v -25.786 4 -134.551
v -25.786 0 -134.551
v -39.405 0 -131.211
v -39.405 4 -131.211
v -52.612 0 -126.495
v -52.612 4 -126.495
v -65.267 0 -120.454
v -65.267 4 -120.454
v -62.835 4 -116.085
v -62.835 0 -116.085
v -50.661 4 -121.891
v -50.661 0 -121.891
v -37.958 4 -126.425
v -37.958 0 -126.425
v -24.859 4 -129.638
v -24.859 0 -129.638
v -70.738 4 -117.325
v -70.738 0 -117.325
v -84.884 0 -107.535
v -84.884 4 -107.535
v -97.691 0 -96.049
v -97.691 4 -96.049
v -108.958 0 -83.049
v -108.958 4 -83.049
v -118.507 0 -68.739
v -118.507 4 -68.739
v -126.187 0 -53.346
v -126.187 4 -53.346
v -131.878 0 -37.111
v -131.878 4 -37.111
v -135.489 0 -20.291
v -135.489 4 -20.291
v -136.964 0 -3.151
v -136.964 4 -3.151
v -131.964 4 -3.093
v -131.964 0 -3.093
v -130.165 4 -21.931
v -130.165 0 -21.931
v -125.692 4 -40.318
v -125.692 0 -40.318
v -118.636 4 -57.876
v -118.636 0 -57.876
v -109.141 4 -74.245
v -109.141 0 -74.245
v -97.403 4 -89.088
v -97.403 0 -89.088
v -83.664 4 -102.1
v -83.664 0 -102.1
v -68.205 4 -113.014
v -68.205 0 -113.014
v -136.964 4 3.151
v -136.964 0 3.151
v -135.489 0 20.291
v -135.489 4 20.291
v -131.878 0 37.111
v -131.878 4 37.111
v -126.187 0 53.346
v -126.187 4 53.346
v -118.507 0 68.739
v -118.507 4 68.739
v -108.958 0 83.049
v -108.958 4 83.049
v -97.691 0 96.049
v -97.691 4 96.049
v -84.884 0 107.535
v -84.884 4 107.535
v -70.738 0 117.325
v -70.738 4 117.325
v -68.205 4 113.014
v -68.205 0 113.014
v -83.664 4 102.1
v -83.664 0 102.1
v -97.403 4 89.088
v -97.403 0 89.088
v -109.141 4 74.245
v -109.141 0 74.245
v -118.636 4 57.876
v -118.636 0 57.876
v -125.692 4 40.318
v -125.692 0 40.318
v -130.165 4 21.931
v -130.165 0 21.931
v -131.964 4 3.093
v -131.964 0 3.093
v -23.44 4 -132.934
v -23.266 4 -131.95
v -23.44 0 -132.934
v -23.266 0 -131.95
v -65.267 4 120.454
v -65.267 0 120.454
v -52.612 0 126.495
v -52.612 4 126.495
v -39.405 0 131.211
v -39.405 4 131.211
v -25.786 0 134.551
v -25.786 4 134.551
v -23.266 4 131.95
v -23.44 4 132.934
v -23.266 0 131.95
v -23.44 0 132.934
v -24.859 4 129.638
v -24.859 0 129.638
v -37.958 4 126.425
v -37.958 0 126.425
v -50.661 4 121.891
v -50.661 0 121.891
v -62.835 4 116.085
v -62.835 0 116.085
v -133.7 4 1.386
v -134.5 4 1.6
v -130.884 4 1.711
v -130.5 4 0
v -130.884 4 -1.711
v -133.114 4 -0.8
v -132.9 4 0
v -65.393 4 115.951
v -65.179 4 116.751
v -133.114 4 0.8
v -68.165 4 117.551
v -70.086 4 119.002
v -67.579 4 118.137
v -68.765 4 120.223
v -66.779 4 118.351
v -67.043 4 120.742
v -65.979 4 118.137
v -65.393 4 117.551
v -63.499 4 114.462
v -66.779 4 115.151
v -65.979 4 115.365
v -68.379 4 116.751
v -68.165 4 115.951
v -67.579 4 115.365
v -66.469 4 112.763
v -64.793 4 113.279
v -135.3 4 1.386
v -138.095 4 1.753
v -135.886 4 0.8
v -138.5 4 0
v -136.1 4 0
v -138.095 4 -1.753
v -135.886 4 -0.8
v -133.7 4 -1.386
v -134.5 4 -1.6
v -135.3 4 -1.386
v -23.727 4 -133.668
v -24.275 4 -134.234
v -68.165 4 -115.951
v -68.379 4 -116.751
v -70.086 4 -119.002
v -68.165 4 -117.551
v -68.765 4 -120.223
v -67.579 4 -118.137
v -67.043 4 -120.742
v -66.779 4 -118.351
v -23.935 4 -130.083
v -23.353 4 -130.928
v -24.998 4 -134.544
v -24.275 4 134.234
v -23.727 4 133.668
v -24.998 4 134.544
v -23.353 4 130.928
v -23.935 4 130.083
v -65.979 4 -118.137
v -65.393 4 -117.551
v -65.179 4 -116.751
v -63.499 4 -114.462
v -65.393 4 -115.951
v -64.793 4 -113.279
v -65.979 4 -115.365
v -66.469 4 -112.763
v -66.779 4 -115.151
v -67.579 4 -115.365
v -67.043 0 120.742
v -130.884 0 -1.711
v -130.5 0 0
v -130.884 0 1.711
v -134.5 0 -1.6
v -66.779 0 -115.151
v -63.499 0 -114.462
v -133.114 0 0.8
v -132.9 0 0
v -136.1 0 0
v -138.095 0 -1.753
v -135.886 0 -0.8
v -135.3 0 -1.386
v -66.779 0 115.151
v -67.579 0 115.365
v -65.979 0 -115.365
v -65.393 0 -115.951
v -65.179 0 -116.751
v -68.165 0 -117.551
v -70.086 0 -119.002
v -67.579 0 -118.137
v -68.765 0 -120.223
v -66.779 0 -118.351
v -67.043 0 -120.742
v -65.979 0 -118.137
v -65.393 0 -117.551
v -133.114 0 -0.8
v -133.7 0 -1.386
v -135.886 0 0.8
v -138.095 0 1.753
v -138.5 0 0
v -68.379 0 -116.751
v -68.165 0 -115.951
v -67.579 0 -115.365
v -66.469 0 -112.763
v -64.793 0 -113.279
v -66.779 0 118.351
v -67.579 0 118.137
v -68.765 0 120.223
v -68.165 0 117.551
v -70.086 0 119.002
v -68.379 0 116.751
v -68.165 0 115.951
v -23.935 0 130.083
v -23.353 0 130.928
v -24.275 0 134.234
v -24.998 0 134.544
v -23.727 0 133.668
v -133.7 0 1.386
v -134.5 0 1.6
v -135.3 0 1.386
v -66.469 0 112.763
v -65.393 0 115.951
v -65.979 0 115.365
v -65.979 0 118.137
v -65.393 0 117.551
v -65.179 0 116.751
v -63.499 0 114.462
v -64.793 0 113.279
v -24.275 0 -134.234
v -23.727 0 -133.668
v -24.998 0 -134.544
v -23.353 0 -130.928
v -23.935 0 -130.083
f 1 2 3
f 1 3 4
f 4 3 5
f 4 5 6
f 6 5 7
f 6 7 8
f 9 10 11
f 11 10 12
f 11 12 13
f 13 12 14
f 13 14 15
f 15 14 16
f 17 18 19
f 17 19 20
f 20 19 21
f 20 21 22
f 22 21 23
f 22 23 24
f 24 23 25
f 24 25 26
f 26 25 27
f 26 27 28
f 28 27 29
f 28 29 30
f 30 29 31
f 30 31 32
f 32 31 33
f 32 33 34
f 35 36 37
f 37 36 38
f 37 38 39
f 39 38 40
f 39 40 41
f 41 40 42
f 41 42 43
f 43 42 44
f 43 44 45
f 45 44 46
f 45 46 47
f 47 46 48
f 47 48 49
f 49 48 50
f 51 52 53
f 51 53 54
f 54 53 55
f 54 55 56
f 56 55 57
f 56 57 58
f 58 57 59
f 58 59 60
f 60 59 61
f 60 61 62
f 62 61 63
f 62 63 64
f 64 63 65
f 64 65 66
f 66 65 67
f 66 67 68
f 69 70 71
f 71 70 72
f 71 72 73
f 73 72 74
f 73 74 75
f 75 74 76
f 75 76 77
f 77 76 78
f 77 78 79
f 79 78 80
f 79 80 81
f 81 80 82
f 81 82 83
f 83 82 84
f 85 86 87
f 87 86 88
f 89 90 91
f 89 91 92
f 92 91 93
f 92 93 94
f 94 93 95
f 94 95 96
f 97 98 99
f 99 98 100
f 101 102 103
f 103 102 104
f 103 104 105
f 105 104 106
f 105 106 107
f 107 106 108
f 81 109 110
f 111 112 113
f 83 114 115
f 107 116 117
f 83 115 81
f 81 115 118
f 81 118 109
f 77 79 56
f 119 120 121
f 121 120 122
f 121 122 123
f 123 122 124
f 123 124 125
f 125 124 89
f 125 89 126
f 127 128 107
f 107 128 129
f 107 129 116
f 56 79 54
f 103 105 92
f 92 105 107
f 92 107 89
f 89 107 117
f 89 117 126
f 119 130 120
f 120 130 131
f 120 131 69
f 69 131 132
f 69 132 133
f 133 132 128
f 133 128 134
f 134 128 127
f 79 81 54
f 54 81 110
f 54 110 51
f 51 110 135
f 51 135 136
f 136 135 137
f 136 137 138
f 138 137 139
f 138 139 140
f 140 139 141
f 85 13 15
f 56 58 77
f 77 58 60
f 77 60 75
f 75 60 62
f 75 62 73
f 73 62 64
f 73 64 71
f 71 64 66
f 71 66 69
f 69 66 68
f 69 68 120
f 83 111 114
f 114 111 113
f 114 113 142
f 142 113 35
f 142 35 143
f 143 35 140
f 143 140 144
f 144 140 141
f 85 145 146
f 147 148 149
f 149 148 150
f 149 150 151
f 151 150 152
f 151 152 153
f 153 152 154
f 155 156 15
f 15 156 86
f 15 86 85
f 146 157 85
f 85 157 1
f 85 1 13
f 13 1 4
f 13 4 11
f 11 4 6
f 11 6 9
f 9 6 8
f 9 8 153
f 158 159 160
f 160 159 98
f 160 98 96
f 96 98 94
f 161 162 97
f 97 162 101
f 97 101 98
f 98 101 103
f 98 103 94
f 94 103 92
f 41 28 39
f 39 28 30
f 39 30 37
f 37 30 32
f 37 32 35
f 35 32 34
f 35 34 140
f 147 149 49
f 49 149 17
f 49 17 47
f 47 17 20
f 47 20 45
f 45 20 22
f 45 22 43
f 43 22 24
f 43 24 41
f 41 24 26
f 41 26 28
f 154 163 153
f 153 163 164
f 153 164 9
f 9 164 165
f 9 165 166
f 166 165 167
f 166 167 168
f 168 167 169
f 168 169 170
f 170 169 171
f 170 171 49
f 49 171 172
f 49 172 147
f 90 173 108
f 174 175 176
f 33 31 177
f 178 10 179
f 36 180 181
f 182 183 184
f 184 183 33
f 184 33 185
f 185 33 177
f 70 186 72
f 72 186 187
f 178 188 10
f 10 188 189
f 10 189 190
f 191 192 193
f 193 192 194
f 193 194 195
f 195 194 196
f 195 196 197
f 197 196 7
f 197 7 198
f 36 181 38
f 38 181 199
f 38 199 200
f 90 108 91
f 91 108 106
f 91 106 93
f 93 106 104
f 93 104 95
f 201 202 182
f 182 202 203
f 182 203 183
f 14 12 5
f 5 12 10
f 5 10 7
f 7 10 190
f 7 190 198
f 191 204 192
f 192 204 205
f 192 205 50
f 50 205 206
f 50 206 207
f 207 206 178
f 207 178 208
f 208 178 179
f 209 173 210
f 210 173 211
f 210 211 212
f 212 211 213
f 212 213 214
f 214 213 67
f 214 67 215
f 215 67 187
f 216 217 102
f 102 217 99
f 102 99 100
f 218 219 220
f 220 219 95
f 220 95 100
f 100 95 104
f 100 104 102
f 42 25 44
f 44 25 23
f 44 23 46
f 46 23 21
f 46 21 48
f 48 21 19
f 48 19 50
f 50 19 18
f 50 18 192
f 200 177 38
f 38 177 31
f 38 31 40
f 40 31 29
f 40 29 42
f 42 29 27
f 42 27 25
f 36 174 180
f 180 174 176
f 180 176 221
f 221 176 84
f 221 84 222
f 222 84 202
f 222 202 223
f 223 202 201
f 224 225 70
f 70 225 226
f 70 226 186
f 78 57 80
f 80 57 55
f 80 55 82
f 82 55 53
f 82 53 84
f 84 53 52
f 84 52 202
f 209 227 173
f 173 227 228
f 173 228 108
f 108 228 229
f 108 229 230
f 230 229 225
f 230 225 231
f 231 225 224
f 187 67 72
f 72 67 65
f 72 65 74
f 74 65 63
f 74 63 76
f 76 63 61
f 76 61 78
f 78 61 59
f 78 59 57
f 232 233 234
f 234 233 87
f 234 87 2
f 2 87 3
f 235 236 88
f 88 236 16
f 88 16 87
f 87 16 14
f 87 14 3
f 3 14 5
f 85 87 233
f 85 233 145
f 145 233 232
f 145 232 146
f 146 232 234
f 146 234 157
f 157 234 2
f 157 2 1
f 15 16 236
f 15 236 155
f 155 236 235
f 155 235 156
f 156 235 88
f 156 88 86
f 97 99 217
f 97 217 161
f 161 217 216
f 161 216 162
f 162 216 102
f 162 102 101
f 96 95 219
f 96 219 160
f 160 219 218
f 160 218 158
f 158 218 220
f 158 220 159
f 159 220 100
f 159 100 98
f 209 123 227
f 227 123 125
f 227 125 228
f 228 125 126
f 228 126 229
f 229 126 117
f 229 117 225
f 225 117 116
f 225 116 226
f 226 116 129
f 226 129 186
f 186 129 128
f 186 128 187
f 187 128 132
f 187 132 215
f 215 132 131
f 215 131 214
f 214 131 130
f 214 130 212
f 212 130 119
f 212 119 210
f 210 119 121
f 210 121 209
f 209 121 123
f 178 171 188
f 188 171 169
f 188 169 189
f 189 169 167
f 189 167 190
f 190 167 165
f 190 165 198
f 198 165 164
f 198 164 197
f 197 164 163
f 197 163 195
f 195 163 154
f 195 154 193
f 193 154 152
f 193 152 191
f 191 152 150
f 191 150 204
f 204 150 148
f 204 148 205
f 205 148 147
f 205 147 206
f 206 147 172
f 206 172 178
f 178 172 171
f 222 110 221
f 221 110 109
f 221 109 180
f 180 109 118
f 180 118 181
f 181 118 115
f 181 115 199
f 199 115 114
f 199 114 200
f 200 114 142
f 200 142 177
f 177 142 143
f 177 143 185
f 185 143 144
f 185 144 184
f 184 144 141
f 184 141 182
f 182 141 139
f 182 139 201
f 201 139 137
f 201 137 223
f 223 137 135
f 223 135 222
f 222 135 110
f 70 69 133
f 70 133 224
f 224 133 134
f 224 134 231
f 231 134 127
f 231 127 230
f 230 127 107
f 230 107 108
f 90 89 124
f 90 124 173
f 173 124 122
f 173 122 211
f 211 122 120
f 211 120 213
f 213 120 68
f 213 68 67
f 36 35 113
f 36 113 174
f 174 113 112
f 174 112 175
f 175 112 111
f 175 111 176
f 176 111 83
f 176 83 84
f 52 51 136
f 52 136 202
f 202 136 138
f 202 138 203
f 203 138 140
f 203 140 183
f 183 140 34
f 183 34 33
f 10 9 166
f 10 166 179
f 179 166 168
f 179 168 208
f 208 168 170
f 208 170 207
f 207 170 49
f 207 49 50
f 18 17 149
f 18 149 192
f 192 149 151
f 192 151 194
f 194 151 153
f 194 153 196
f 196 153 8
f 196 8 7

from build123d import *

# Parameters (mm, degrees)
BOSS_EXTRUDE1_DEPTH = 4
FILLET2_R           = 2
CUT_EXTRUDE1_REACH  = 194.09
SKETCH2_R           = 1.6
SKETCH3_R           = 4
SKETCH3_R_2         = 1.6
BOSS_EXTRUDE2_DEPTH = 4


with BuildPart() as part:
    # Sketch1 → Boss-Extrude1 (new body)
    with BuildSketch(Plane(origin=(0, 0, 0), x_dir=(1, 0, 0), z_dir=(0, 1, 0))):
        with BuildLine():
            Line((-22.921559452, -129.994623398), (-23.78980034, -134.918662163))
            ThreePointArc((-23.78980034, -134.918662163), (-137, 0), (-23.78980034, 134.918662163))
            Line((-23.78980034, 134.918662163), (-22.921559452, 129.994623398))
            ThreePointArc((-22.921559452, 129.994623398), (-132, 0), (-22.921559452, -129.994623398))
        make_face()
    extrude(amount=BOSS_EXTRUDE1_DEPTH)

    # Fillet2
    fillet2_edges = [part.edges().sort_by_distance(p)[0] for p in [
        (-23.78980034, 2, -134.918662163),
        (-23.78980034, 2, 134.918662163),
        (-22.921559452, 2, 129.994623398),
        (-22.921559452, 2, -129.994623398),
    ]]
    fillet(fillet2_edges, radius=FILLET2_R)

    # Sketch2 → Cut-Extrude1 (cut, up to next)
    with BuildSketch(Plane(origin=(0, 4, 0), x_dir=(1, 0, 0), z_dir=(0, 1, 0)), mode=Mode.PRIVATE) as cut_extrude1_sk1:
        with Locations(Location((-66.779143443, 116.751, 0), (0, 0, 270))):
            Circle(SKETCH2_R)
    cut_extrude1_tool1 = extrude(cut_extrude1_sk1.sketch, amount=-CUT_EXTRUDE1_REACH, mode=Mode.PRIVATE) & part.part
    # Sketch2 → Cut-Extrude1 (cut, up to next)
    with BuildSketch(Plane(origin=(0, 4, 0), x_dir=(1, 0, 0), z_dir=(0, 1, 0)), mode=Mode.PRIVATE) as cut_extrude1_sk2:
        with Locations(Location((-134.5, 0, 0), (0, 0, 270))):
            Circle(SKETCH2_R)
    cut_extrude1_tool2 = extrude(cut_extrude1_sk2.sketch, amount=-CUT_EXTRUDE1_REACH, mode=Mode.PRIVATE) & part.part
    # Sketch2 → Cut-Extrude1 (cut, up to next)
    with BuildSketch(Plane(origin=(0, 4, 0), x_dir=(1, 0, 0), z_dir=(0, 1, 0)), mode=Mode.PRIVATE) as cut_extrude1_sk3:
        with Locations(Location((-66.779143443, -116.751, 0), (0, 0, 270))):
            Circle(SKETCH2_R)
    cut_extrude1_tool3 = extrude(cut_extrude1_sk3.sketch, amount=-CUT_EXTRUDE1_REACH, mode=Mode.PRIVATE) & part.part
    add(cut_extrude1_tool1.solids().sort_by_distance((-66.779143, 4, -116.751))[0], mode=Mode.SUBTRACT)
    add(cut_extrude1_tool2.solids().sort_by_distance((-134.5, 4, 0))[0], mode=Mode.SUBTRACT)
    add(cut_extrude1_tool3.solids().sort_by_distance((-66.779143, 4, 116.751))[0], mode=Mode.SUBTRACT)

    # Sketch3 → Boss-Extrude2 (add)
    # profile 1 of 3: a face of its own
    with BuildSketch(Plane(origin=(0, 4, 0), x_dir=(1, 0, 0), z_dir=(0, 1, 0))):
        with Locations((-66.779143443, -116.751)):
            Circle(SKETCH3_R)
        with Locations(Location((-66.779143443, -116.751, 0), (0, 0, 270))):
            Circle(SKETCH3_R_2, mode=Mode.SUBTRACT)
    # profile 2 of 3: a face of its own
    with BuildSketch(Plane(origin=(0, 4, 0), x_dir=(1, 0, 0), z_dir=(0, 1, 0))):
        with Locations((-134.5, 0)):
            Circle(SKETCH3_R)
        with Locations(Location((-134.5, 0, 0), (0, 0, 270))):
            Circle(SKETCH3_R_2, mode=Mode.SUBTRACT)
    # profile 3 of 3: a face of its own
    with BuildSketch(Plane(origin=(0, 4, 0), x_dir=(1, 0, 0), z_dir=(0, 1, 0))):
        with Locations((-66.779143443, 116.751)):
            Circle(SKETCH3_R)
        with Locations(Location((-66.779143443, 116.751, 0), (0, 0, 270))):
            Circle(SKETCH3_R_2, mode=Mode.SUBTRACT)
    extrude(amount=-BOSS_EXTRUDE2_DEPTH)


solid = part.part
